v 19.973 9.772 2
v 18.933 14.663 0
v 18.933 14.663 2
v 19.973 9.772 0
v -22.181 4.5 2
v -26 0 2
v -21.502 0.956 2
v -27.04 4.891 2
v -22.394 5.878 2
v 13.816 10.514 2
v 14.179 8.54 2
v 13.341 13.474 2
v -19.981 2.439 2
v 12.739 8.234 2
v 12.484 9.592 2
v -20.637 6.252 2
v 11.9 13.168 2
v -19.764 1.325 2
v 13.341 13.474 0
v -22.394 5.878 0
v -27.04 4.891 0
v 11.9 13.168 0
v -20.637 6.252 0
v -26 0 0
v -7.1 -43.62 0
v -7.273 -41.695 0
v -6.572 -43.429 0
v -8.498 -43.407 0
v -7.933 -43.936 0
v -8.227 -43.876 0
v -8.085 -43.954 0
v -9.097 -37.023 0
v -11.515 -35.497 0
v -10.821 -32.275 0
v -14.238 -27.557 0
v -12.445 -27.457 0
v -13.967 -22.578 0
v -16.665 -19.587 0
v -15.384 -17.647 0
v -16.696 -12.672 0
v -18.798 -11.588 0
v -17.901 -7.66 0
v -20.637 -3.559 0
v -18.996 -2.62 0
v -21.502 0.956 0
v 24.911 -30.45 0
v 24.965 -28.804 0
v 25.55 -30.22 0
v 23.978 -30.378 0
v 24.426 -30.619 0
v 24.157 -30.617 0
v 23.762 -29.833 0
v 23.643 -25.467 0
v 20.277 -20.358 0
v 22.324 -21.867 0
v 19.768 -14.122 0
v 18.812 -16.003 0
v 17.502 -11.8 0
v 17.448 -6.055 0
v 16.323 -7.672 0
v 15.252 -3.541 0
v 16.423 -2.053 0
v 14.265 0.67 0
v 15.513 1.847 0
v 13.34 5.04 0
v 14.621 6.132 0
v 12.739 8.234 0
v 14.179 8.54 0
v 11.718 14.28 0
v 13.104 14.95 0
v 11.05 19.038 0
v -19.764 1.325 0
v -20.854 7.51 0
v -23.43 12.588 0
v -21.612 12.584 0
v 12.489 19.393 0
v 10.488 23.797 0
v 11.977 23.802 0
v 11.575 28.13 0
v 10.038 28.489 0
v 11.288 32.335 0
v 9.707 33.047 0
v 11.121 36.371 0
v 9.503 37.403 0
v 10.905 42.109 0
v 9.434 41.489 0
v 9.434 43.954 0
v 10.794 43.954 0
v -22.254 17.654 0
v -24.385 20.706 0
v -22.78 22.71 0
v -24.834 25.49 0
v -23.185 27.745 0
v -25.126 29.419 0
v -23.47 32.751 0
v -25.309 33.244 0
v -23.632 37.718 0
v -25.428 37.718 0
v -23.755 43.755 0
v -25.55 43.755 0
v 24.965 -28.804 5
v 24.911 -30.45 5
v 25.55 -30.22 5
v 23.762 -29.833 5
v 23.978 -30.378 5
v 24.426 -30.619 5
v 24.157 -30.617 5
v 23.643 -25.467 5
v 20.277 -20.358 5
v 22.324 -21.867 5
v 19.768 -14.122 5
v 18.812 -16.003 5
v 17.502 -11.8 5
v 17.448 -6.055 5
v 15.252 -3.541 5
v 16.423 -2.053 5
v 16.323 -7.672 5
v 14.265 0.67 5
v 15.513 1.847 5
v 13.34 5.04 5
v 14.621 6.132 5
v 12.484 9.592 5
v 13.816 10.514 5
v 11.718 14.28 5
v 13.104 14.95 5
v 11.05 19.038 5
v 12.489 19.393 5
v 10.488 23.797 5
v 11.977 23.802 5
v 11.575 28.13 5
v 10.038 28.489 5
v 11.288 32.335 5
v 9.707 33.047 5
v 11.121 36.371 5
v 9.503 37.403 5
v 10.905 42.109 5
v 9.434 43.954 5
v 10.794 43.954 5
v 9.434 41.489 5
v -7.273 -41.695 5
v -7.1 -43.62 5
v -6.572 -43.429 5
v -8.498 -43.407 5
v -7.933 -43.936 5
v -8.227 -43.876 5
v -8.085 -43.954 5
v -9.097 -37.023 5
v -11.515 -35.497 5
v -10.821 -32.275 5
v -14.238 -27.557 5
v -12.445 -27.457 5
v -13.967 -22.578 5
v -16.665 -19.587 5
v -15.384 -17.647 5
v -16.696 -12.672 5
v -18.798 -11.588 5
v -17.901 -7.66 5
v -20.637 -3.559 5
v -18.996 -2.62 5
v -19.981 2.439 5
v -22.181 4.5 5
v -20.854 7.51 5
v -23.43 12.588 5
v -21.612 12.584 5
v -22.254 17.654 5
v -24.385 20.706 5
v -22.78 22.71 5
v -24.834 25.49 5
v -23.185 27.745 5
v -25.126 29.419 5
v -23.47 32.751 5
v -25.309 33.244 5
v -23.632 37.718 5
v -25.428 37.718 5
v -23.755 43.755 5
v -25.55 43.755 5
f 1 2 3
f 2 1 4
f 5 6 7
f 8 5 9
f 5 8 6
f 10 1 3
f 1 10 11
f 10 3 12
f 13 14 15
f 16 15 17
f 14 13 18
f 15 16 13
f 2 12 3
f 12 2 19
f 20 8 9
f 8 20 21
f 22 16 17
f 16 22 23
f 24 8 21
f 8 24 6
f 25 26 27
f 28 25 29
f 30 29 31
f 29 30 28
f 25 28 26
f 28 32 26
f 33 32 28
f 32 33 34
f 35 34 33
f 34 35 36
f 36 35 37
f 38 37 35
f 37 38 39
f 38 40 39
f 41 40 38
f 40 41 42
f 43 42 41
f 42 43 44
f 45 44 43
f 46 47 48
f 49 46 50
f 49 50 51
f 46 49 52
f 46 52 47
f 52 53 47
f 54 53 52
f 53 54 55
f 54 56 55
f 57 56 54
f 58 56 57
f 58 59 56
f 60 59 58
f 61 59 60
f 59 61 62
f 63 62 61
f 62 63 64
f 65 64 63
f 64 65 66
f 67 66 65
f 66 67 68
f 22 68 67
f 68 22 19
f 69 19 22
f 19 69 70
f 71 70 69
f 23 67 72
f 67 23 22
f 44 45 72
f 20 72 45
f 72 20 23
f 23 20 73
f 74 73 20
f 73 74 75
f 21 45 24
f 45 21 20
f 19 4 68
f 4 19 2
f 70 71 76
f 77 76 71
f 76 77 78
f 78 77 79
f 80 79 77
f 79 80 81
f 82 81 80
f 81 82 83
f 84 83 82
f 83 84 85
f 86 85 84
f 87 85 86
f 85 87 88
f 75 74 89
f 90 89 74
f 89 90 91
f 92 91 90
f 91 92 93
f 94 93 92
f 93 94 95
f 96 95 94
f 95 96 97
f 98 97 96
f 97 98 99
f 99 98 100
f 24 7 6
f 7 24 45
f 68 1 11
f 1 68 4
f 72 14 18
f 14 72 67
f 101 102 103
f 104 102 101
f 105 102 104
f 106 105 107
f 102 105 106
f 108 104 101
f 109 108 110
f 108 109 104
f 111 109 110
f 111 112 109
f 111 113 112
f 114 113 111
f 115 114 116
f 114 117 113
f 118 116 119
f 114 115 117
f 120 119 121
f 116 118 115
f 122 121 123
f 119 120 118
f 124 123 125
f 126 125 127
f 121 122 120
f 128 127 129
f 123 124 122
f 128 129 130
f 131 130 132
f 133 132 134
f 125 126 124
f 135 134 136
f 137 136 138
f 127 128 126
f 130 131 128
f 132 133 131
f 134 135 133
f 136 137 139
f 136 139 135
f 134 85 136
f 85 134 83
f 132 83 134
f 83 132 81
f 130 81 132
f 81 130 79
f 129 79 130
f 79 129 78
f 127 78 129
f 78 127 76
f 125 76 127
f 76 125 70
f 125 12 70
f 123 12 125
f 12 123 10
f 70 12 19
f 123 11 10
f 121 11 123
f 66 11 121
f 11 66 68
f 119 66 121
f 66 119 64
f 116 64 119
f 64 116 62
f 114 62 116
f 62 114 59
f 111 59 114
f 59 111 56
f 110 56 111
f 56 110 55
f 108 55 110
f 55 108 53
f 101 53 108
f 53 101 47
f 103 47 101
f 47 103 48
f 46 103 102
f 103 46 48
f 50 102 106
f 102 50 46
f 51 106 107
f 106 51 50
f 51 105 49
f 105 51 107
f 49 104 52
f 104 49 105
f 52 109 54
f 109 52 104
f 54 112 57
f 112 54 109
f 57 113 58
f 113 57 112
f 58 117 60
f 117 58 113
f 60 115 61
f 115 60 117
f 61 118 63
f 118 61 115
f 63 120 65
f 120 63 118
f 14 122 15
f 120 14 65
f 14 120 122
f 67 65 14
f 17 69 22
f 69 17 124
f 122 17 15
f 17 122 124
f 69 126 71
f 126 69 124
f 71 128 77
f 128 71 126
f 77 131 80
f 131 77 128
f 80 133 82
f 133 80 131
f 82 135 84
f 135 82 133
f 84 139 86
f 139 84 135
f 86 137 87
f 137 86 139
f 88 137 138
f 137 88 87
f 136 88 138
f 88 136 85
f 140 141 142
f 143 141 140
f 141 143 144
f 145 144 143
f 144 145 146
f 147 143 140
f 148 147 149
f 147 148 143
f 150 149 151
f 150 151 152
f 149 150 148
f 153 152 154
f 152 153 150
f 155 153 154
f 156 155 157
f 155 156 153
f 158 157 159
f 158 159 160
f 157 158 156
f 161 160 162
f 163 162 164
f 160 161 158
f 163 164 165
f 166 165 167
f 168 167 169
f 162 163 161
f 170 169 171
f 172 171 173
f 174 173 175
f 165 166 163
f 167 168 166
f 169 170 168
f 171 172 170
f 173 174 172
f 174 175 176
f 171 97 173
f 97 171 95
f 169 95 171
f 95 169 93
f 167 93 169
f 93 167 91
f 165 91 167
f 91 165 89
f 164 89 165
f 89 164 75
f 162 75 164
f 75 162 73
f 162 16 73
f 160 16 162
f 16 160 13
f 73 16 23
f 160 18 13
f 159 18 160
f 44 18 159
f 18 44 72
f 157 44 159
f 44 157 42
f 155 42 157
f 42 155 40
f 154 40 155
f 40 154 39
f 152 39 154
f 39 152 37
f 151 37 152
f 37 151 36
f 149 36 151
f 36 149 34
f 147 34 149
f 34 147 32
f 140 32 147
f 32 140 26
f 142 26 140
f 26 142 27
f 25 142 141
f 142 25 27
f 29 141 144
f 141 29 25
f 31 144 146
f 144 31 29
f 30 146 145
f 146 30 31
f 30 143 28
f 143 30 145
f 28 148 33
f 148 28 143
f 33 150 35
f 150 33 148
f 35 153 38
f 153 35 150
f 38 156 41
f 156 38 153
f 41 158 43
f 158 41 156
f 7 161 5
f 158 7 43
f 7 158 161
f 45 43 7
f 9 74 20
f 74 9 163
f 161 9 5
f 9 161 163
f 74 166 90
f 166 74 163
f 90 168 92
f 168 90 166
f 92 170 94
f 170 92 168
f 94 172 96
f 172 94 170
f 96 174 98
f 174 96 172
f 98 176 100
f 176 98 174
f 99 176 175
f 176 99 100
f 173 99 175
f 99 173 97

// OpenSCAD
// Module names are of the form poly_<inkscape-path-id>().  As a result,
// you can associate a polygon in this OpenSCAD program with the corresponding
// SVG element in the Inkscape document by looking for the XML element with
// the attribute id="inkscape-path-id".

// fudge value is used to ensure that subtracted solids are a tad taller
// in the z dimension than the polygon being subtracted from.  This helps
// keep the resulting .stl file manifold.
fudge = 0.1;
translate([-26,0,0])rotate([0,0,12]) cube([47,5,2]);
module poly_path4174(h)
{
  scale([25.4/90, -25.4/90, 1]) union()
  {
    linear_extrude(height=h)
      polygon([[84.194875,105.708322],[71.847201,72.132839],[66.657641,56.703028],[62.014772,41.812109],[57.836471,27.185284],[54.040619,12.547758],[50.545094,-2.375268],[47.267775,-17.858588],[44.233968,-33.987122],[41.521202,-50.600139],[39.155203,-67.457583],[37.161698,-84.319398],[35.566411,-100.945528],[34.395070,-117.095916],[33.673399,-132.530505],[33.427125,-147.009238],[33.427125,-155.744408],[35.836005,-155.744408],[38.244885,-155.744408],[38.640655,-149.203668],[39.404095,-128.872278],[39.995970,-114.571447],[41.014440,-99.674013],[42.439550,-84.336835],[44.251345,-68.716773],[46.429870,-52.970688],[48.955168,-37.255437],[51.807285,-21.727881],[54.966265,-6.544878],[58.190318,7.273425],[61.822333,21.453751],[70.044252,50.037875],[79.100014,77.482290],[83.774335,90.237980],[88.457615,102.061792],[90.531025,107.077322],[88.268595,107.895432],[86.547363,108.491538],[85.595120,108.487029],[84.961185,107.639944],[84.194875,105.708322]]);
  }
}

module poly_path4172(h)
{
  scale([25.4/90, -25.4/90, 1]) union()
  {
    linear_extrude(height=h)
      polygon([[-30.111324,153.805702],[-40.801459,125.776383],[-50.447680,97.642149],[-59.049987,69.402999],[-66.608379,41.058934],[-73.122857,12.609954],[-78.593420,-15.943940],[-83.020068,-44.602747],[-86.402802,-73.366468],[-87.993563,-90.320819],[-89.030738,-104.240795],[-89.677858,-117.793820],[-90.098456,-133.647318],[-90.531025,-155.037298],[-87.351488,-155.037298],[-84.171950,-155.037298],[-83.737342,-133.647318],[-83.162093,-116.045306],[-82.152518,-98.309538],[-80.714613,-80.469119],[-78.854372,-62.553152],[-76.577790,-44.590741],[-73.890865,-26.610989],[-70.799589,-8.643000],[-67.309961,9.284122],[-63.427973,27.141273],[-59.159622,44.899351],[-54.510904,62.529251],[-49.487814,80.001870],[-44.096346,97.288104],[-38.342497,114.358850],[-32.232262,131.185004],[-25.771636,147.737462],[-23.287488,153.880932],[-25.158998,154.559432],[-28.107591,155.677922],[-28.648468,155.744408],[-29.149108,155.467249],[-30.111324,153.805702]]);
  }
}

poly_path4174(5);
poly_path4172(5);
